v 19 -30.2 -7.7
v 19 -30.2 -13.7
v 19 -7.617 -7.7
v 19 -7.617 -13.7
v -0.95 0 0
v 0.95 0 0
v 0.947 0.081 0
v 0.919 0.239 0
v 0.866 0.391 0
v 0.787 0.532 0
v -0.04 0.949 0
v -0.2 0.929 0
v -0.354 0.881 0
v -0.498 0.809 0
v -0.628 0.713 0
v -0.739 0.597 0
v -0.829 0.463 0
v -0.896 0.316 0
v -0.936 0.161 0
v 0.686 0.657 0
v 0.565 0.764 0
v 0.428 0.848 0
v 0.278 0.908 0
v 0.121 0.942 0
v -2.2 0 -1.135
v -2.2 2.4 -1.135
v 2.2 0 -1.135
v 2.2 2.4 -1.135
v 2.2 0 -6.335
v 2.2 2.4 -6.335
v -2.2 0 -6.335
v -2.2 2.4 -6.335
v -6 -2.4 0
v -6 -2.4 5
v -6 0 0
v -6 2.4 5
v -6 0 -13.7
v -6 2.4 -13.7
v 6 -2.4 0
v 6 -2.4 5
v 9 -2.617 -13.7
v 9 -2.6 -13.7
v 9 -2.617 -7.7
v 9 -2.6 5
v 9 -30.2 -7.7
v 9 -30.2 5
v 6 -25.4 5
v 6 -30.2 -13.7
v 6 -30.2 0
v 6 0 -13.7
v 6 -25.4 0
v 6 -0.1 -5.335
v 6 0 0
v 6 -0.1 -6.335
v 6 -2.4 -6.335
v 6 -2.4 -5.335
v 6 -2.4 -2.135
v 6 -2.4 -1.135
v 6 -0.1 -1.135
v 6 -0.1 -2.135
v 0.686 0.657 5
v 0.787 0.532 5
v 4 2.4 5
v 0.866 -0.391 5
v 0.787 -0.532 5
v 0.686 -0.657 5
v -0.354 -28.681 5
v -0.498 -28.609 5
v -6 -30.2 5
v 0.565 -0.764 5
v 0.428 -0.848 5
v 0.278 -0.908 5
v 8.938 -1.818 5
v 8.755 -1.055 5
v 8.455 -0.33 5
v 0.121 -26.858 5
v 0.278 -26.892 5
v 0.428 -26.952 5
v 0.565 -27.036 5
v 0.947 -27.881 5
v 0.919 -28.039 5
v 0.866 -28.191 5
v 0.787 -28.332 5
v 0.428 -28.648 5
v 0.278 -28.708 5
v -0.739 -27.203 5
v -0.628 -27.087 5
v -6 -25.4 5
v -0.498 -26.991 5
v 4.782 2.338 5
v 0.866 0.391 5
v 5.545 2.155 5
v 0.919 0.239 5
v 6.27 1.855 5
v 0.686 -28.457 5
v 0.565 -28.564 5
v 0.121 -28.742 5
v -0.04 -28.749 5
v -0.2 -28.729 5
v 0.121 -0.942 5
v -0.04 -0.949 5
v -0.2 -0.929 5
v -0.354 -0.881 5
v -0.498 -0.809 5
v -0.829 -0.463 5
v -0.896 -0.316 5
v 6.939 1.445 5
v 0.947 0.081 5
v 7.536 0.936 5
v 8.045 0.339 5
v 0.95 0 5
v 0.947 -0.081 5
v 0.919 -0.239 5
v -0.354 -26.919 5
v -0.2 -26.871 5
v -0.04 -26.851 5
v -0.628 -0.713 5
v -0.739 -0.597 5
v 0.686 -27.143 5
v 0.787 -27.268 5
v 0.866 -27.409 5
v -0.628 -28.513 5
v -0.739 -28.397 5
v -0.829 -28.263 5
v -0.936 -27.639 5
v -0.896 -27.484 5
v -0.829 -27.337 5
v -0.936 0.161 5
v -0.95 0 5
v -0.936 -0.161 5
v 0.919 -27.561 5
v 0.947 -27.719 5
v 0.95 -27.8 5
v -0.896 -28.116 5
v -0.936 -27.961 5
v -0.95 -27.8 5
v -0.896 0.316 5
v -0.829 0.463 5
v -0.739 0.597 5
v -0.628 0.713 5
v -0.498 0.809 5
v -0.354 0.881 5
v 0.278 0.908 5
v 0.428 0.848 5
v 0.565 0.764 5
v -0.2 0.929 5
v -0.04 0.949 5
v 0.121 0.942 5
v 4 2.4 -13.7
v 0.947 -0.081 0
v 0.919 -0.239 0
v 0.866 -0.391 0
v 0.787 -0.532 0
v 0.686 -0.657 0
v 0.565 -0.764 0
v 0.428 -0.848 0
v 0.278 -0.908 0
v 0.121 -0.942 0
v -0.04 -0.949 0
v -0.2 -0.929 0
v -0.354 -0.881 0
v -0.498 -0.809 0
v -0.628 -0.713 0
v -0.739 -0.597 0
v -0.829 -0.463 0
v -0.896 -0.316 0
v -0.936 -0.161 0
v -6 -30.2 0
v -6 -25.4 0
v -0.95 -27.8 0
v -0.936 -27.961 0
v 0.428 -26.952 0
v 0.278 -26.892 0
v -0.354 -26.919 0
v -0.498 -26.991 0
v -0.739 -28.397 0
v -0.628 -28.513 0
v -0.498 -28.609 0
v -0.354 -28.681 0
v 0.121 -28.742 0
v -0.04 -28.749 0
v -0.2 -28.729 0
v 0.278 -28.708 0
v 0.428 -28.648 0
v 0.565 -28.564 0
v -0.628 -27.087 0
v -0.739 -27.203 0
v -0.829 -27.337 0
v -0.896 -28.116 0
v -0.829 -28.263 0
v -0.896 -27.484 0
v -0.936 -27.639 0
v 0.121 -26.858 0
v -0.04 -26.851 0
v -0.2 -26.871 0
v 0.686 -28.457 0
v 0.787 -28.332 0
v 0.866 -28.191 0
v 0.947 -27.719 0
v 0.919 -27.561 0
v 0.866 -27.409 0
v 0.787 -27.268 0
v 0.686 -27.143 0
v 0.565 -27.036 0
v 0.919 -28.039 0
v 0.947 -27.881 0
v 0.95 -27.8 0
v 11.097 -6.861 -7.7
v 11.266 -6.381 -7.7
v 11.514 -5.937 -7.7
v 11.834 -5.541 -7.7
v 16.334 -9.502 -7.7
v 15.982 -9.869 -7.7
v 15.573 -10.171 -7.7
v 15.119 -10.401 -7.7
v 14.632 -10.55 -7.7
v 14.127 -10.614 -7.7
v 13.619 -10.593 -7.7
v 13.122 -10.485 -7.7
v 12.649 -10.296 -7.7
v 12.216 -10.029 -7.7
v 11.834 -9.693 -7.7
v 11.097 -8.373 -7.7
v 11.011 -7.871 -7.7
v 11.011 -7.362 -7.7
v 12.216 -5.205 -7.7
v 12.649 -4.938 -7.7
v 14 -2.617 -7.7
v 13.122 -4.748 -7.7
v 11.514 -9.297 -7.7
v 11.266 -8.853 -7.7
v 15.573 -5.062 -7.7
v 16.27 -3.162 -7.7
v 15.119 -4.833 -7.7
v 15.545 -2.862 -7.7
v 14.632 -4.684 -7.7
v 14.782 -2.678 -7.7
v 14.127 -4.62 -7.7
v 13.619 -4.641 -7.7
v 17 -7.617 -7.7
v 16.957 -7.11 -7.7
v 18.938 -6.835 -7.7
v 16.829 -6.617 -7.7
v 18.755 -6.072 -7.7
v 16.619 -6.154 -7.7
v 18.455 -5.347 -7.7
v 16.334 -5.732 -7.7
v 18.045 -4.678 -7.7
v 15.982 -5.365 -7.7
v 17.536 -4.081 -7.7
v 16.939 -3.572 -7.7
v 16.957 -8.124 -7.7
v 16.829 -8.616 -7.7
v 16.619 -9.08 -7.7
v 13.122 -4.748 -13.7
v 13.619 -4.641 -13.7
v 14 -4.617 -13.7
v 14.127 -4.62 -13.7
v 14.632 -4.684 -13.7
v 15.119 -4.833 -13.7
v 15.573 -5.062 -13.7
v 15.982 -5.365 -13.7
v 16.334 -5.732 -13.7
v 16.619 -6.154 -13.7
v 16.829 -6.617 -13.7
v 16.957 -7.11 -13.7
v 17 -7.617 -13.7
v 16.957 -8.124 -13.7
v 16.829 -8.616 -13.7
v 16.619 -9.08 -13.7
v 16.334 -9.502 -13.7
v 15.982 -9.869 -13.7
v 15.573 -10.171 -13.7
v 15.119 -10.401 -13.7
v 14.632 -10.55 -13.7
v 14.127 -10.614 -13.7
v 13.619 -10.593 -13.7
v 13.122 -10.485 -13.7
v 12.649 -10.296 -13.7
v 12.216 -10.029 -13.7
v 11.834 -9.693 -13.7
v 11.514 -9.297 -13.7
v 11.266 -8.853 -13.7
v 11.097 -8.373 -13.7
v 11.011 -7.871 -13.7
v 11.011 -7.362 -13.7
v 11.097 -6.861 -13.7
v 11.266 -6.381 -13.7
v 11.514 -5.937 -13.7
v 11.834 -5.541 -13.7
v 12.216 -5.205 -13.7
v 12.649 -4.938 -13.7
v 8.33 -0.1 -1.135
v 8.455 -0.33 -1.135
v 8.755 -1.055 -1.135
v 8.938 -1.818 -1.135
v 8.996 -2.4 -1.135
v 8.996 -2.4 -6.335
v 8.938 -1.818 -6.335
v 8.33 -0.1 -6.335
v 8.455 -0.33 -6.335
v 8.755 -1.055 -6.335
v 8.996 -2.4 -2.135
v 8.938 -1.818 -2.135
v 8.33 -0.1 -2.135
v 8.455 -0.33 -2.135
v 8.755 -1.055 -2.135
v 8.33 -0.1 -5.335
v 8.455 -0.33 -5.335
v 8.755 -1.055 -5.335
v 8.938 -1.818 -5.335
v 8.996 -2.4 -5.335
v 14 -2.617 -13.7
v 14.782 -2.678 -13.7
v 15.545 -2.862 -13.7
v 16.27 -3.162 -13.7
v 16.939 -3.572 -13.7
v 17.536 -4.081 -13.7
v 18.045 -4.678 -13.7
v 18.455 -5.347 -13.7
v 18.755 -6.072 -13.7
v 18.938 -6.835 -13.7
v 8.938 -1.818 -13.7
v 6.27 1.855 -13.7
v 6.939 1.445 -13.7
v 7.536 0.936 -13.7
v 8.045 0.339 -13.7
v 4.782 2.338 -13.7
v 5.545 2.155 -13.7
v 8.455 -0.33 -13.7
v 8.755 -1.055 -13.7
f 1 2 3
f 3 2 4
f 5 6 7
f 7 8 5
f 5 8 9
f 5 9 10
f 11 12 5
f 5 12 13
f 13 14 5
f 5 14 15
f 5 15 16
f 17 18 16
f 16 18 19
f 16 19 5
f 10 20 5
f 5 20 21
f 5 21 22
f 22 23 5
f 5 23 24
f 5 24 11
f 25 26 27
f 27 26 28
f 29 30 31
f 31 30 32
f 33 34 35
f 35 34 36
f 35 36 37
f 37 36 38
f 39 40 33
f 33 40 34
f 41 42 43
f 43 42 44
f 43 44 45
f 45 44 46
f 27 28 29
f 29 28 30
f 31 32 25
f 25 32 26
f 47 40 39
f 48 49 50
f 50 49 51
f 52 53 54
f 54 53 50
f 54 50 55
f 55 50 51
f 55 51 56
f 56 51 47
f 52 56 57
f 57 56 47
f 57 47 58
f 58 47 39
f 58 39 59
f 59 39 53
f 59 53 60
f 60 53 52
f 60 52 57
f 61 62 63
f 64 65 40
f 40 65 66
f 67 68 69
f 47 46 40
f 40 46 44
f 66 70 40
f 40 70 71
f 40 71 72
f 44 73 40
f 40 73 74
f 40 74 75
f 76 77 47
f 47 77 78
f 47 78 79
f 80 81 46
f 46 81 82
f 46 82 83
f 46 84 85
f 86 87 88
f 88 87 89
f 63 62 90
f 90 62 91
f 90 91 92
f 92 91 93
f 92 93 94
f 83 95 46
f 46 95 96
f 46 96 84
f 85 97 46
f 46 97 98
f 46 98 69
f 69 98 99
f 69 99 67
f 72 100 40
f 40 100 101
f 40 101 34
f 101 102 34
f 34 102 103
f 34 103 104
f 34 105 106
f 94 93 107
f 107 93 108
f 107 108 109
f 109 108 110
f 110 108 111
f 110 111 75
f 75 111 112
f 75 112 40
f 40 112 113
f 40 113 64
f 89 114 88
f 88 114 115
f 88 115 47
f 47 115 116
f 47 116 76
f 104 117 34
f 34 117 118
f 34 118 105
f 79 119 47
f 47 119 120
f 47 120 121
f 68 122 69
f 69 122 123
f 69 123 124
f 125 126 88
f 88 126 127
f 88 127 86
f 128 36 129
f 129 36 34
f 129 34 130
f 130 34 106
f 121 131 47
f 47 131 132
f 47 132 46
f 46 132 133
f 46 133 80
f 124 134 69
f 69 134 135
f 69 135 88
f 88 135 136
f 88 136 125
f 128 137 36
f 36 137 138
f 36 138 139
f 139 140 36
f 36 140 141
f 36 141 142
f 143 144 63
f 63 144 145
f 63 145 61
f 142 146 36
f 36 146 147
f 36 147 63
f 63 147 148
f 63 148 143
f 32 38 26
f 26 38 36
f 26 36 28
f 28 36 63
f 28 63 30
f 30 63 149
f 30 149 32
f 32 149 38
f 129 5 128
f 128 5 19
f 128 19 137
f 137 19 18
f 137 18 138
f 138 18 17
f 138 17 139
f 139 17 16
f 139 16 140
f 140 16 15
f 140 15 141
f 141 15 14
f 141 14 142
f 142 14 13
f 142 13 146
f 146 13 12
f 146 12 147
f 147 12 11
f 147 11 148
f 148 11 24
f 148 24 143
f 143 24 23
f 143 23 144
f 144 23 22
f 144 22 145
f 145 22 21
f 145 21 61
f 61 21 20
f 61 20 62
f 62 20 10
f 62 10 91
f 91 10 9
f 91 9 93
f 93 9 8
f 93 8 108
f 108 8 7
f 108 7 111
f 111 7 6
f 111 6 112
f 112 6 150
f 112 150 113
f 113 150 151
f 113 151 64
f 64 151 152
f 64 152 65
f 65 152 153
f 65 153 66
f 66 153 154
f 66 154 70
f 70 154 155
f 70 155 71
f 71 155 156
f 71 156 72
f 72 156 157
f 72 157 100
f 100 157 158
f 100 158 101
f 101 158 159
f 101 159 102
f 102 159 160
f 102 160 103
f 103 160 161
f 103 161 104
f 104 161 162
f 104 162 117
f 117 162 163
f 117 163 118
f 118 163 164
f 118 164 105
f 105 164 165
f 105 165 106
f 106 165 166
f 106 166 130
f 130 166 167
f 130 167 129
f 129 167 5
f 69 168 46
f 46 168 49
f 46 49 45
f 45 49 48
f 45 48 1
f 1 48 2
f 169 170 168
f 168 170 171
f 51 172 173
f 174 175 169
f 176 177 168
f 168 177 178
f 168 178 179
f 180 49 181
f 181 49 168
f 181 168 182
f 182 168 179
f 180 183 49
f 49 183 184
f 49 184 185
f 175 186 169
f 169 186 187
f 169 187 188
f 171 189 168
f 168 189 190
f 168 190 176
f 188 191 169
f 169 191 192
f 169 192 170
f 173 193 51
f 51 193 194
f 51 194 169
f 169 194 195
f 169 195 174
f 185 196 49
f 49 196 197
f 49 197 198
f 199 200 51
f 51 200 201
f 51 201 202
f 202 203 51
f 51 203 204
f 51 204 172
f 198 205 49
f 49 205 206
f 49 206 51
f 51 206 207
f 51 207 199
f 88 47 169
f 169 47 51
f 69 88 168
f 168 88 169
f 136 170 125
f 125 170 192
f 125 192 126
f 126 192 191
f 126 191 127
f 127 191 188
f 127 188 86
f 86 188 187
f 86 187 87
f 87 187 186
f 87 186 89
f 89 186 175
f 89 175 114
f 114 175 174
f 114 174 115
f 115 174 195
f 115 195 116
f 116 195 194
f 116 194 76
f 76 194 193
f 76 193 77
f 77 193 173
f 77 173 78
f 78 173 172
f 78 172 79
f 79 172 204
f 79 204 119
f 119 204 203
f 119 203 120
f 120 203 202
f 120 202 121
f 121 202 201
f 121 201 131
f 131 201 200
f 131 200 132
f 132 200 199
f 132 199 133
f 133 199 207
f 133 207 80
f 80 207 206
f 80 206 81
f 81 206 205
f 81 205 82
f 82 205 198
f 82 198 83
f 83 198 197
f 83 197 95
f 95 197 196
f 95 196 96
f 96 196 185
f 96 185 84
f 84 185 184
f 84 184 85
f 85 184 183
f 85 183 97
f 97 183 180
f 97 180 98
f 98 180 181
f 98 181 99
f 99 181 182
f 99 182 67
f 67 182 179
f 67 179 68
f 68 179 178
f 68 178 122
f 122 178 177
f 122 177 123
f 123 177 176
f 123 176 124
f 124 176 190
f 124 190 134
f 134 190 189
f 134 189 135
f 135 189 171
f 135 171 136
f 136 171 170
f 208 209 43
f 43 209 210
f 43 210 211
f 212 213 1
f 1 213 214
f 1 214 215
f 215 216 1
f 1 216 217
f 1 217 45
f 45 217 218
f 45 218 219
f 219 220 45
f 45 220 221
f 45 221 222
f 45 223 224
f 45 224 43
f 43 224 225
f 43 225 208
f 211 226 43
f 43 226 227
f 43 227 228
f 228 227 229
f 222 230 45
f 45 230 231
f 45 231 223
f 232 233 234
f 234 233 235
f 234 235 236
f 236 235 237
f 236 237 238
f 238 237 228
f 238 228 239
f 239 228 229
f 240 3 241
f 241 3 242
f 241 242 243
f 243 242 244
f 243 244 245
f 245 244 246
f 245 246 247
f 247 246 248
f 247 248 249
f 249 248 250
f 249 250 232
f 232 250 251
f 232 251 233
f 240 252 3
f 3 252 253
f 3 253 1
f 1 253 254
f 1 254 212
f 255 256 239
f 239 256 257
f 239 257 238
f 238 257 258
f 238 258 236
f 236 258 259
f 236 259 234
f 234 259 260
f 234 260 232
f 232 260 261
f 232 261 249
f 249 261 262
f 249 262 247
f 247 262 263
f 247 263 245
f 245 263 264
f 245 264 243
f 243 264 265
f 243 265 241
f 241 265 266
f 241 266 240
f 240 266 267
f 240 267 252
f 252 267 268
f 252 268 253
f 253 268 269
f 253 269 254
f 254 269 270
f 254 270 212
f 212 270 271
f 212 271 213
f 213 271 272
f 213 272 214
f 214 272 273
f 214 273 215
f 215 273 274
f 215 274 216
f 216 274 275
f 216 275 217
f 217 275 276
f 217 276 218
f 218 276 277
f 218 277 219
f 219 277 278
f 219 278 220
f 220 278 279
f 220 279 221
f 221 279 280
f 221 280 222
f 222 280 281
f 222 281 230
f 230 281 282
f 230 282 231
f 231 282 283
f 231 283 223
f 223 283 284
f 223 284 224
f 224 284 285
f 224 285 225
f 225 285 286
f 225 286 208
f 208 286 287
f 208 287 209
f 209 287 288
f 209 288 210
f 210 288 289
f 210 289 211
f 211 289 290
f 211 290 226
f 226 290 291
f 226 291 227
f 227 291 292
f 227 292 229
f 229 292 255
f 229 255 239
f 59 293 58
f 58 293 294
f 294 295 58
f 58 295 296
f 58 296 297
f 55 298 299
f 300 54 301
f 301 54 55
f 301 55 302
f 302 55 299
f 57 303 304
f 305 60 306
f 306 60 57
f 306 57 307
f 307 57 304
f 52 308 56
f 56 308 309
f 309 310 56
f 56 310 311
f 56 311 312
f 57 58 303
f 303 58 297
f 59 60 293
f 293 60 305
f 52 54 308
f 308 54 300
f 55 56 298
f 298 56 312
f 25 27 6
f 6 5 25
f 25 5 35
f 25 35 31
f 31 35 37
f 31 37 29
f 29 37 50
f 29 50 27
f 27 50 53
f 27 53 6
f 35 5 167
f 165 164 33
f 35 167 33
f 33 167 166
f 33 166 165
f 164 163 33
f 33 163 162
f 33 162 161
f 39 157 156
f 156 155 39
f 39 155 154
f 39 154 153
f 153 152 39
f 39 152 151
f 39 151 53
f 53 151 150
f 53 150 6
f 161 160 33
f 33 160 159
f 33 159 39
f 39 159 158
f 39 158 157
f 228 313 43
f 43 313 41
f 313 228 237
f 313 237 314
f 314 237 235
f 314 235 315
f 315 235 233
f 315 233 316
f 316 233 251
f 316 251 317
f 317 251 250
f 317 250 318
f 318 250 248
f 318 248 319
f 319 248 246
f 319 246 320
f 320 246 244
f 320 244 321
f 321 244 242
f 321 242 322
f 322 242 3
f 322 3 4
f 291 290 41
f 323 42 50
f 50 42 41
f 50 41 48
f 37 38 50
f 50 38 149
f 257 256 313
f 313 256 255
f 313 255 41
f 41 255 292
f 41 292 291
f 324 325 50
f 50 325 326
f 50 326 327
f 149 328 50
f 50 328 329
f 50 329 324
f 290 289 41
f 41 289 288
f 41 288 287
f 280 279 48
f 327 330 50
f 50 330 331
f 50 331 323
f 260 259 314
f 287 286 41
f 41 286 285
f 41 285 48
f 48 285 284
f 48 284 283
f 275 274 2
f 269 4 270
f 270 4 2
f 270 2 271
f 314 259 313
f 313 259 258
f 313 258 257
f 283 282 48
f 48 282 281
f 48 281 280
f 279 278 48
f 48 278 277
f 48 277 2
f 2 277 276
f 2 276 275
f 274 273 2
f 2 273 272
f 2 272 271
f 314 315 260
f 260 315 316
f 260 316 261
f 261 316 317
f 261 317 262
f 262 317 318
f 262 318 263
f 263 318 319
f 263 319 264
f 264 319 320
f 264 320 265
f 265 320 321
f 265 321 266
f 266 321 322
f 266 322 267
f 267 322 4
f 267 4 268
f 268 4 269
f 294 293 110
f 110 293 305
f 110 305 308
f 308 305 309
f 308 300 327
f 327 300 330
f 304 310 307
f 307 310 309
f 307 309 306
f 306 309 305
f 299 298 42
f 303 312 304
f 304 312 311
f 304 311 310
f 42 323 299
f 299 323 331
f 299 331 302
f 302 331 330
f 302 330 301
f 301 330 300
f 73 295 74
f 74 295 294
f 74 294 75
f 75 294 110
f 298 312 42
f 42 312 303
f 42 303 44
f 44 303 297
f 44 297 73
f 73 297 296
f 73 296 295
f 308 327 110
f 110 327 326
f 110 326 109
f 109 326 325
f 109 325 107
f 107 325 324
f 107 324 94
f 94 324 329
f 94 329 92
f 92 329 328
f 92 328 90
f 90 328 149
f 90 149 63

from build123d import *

# Parameters (mm, degrees)
SKETCH_1_W               = 12
SKETCH_1_H               = 4.8
SKETCH_1_R               = 0.95
EXTRUDE_1_DEPTH          = 5
EXTRUDE_1_2_DEPTH        = 5
SKETCH_2_W               = 15.7
SKETCH_2_H               = 32.6
EXTRUDE_2_DEPTH          = 3
SKETCH_3_W               = 3
SKETCH_3_H               = 32.6
EXTRUDE_3_DEPTH          = 10
SKETCH_6_R               = 3
CUT_EXTRUDE_1_DEPTH      = 38.872549426
SKETCH_7_W               = 10.7
SKETCH_7_H               = 4.8
EXTRUDE_5_DEPTH          = 12
SKETCH_9_W               = 4.4
SKETCH_9_H               = 5.2
CUT_EXTRUDE_2_DEPTH      = 2.5
SKETCH_10_W              = 4.4
SKETCH_10_H              = 1
CUT_EXTRUDE_3_DEPTH      = 2.5
CUT_EXTRUDE_4_DEPTH      = 12.5
CUT_EXTRUDE_4_DEPTH_BACK = 12.5
SKETCH_11_W              = 1
SKETCH_11_H              = 2.3
SKETCH_12_W              = 10.7
SKETCH_12_H              = 2.4
CUT_EXTRUDE_5_DEPTH      = 12
CUT_EXTRUDE_6_DEPTH      = 12
SKETCH_14_R              = 3
EXTRUDE_6_DEPTH          = 3
CUT_EXTRUDE_7_DEPTH      = 23


with BuildPart() as part:
    # 草图1 → 凸台-拉伸1 (new body)
    with BuildSketch(Plane.XY):
        Rectangle(SKETCH_1_W, SKETCH_1_H)
        Circle(SKETCH_1_R, mode=Mode.SUBTRACT)
    extrude(amount=EXTRUDE_1_DEPTH)



with BuildPart() as body_2:
    # 草图1 → Extrude 1 2 (new body)
    with BuildSketch(Plane.XY):
        with Locations((0, -27.8)):
            Rectangle(SKETCH_1_W, SKETCH_1_H)
        with Locations((0, -27.8)):
            Circle(SKETCH_1_R, mode=Mode.SUBTRACT)
    extrude(amount=EXTRUDE_1_2_DEPTH)


with BuildPart() as part_1:
    add(part.part)

    add(body_2.part)  # 凸台-拉伸2 merges body 2
    # 草图2 → 凸台-拉伸2 (add)
    with BuildSketch(Plane(origin=(6, 0, 0), x_dir=(0, 0, -1), z_dir=(1, 0, 0))):
        with Locations((2.85, -13.9)):
            Rectangle(SKETCH_2_W, SKETCH_2_H)
    extrude(amount=EXTRUDE_2_DEPTH)

    # 草图3 → 凸台-拉伸3 (add)
    with BuildSketch(Plane(origin=(9, 0, 0), x_dir=(0, 0, -1), z_dir=(1, 0, 0))):
        with Locations((9.2, -13.9)):
            Rectangle(SKETCH_3_W, SKETCH_3_H)
    extrude(amount=EXTRUDE_3_DEPTH)

    # 草图6 → 切除-拉伸1 (cut, through all)
    with BuildSketch(Plane.XY.offset(-7.7)):
        with Locations((14, -7.6169052)):
            Circle(SKETCH_6_R)
    extrude(amount=-CUT_EXTRUDE_1_DEPTH, mode=Mode.SUBTRACT)

    # 草图7 → 凸台-拉伸5 (add)
    with BuildSketch(Plane.ZY.offset(-6)):
        with Locations((-5.35, 0)):
            Rectangle(SKETCH_7_W, SKETCH_7_H)
    extrude(amount=EXTRUDE_5_DEPTH)

    # 草图9 → 切除-拉伸2 (cut)
    with BuildSketch(Plane(origin=(0, 2.4, 0), x_dir=(1, 0, 0), z_dir=(0, 1, 0))):
        with Locations((0, 3.734554069)):
            Rectangle(SKETCH_9_W, SKETCH_9_H)
    extrude(amount=-CUT_EXTRUDE_2_DEPTH, mode=Mode.SUBTRACT)

    # 草图10 → 切除-拉伸3 (cut)
    with BuildSketch(Plane(origin=(0, -0.1, 0), x_dir=(1, 0, 0), z_dir=(0, 1, 0))):
        with Locations((0, 5.834554069)):
            Rectangle(SKETCH_10_W, SKETCH_10_H)
        with Locations((0, 1.634554069)):
            Rectangle(SKETCH_10_W, SKETCH_10_H)
    extrude(amount=-CUT_EXTRUDE_3_DEPTH, mode=Mode.SUBTRACT)

    # 草图11 → 切除-拉伸4 (cut, two sides: drawn at the far end of the back side and taken through both)
    with BuildSketch(Plane.ZY.offset(-2.2).offset(-CUT_EXTRUDE_4_DEPTH_BACK)):
        with Locations((-1.634554069, -1.25)):
            Rectangle(SKETCH_11_W, SKETCH_11_H)
        with Locations((-5.834554069, -1.25)):
            Rectangle(SKETCH_11_W, SKETCH_11_H)
    extrude(amount=CUT_EXTRUDE_4_DEPTH + CUT_EXTRUDE_4_DEPTH_BACK, mode=Mode.SUBTRACT)

    # 草图12 → 切除-拉伸5 (cut)
    with BuildSketch(Plane.ZY.offset(6)):
        with Locations((-5.35, -1.2)):
            Rectangle(SKETCH_12_W, SKETCH_12_H)
    extrude(amount=-CUT_EXTRUDE_5_DEPTH, mode=Mode.SUBTRACT)

    # 草图13 → 切除-拉伸6 (cut)
    with BuildSketch(Plane.XY.offset(-7.7)):
        with BuildLine():
            Line((14, -2.6169052), (9, -2.6169052))
            Line((9, -2.6169052), (9, 2.4))
            Line((9, 2.4), (19, 2.4))
            Line((19, 2.4), (19, -7.6169052))
            ThreePointArc((19, -7.6169052), (17.535533906, -4.081371294), (14, -2.6169052))
        make_face()
    extrude(amount=-CUT_EXTRUDE_6_DEPTH, mode=Mode.SUBTRACT)

    # 草图14 → 凸台-拉伸6 (add)
    with BuildSketch(Plane(origin=(0, 0, -10.7), x_dir=(-1, 0, 0), z_dir=(0, 0, -1))):
        with BuildLine():
            Line((-19, -7.6169052), (-19, -30.2))
            Line((-19, -30.2), (-6, -30.2))
            Line((-6, -30.2), (-6, 0))
            Line((-6, 0), (6, 0))
            Line((6, 0), (6, 2.4))
            Line((6, 2.4), (-9, 2.4))
            Line((-9, 2.4), (-9, -2.6169052))
            Line((-9, -2.6169052), (-14, -2.6169052))
            ThreePointArc((-14, -2.6169052), (-17.535533906, -4.081371294), (-19, -7.6169052))
        make_face()
        with Locations(Location((-14, -7.6169052, 0), (0, 0, 180))):
            Circle(SKETCH_14_R, mode=Mode.SUBTRACT)
    extrude(amount=EXTRUDE_6_DEPTH)

    # 草图15 → 切除-拉伸7 (cut)
    with BuildSketch(Plane.XY.offset(5)):
        with BuildLine():
            Line((9, -2.6), (9, 2.4))
            Line((9, 2.4), (4, 2.4))
            ThreePointArc((4, 2.4), (7.535533906, 0.935533906), (9, -2.6))
        make_face()
    extrude(amount=-CUT_EXTRUDE_7_DEPTH, mode=Mode.SUBTRACT)


solid = part_1.part
